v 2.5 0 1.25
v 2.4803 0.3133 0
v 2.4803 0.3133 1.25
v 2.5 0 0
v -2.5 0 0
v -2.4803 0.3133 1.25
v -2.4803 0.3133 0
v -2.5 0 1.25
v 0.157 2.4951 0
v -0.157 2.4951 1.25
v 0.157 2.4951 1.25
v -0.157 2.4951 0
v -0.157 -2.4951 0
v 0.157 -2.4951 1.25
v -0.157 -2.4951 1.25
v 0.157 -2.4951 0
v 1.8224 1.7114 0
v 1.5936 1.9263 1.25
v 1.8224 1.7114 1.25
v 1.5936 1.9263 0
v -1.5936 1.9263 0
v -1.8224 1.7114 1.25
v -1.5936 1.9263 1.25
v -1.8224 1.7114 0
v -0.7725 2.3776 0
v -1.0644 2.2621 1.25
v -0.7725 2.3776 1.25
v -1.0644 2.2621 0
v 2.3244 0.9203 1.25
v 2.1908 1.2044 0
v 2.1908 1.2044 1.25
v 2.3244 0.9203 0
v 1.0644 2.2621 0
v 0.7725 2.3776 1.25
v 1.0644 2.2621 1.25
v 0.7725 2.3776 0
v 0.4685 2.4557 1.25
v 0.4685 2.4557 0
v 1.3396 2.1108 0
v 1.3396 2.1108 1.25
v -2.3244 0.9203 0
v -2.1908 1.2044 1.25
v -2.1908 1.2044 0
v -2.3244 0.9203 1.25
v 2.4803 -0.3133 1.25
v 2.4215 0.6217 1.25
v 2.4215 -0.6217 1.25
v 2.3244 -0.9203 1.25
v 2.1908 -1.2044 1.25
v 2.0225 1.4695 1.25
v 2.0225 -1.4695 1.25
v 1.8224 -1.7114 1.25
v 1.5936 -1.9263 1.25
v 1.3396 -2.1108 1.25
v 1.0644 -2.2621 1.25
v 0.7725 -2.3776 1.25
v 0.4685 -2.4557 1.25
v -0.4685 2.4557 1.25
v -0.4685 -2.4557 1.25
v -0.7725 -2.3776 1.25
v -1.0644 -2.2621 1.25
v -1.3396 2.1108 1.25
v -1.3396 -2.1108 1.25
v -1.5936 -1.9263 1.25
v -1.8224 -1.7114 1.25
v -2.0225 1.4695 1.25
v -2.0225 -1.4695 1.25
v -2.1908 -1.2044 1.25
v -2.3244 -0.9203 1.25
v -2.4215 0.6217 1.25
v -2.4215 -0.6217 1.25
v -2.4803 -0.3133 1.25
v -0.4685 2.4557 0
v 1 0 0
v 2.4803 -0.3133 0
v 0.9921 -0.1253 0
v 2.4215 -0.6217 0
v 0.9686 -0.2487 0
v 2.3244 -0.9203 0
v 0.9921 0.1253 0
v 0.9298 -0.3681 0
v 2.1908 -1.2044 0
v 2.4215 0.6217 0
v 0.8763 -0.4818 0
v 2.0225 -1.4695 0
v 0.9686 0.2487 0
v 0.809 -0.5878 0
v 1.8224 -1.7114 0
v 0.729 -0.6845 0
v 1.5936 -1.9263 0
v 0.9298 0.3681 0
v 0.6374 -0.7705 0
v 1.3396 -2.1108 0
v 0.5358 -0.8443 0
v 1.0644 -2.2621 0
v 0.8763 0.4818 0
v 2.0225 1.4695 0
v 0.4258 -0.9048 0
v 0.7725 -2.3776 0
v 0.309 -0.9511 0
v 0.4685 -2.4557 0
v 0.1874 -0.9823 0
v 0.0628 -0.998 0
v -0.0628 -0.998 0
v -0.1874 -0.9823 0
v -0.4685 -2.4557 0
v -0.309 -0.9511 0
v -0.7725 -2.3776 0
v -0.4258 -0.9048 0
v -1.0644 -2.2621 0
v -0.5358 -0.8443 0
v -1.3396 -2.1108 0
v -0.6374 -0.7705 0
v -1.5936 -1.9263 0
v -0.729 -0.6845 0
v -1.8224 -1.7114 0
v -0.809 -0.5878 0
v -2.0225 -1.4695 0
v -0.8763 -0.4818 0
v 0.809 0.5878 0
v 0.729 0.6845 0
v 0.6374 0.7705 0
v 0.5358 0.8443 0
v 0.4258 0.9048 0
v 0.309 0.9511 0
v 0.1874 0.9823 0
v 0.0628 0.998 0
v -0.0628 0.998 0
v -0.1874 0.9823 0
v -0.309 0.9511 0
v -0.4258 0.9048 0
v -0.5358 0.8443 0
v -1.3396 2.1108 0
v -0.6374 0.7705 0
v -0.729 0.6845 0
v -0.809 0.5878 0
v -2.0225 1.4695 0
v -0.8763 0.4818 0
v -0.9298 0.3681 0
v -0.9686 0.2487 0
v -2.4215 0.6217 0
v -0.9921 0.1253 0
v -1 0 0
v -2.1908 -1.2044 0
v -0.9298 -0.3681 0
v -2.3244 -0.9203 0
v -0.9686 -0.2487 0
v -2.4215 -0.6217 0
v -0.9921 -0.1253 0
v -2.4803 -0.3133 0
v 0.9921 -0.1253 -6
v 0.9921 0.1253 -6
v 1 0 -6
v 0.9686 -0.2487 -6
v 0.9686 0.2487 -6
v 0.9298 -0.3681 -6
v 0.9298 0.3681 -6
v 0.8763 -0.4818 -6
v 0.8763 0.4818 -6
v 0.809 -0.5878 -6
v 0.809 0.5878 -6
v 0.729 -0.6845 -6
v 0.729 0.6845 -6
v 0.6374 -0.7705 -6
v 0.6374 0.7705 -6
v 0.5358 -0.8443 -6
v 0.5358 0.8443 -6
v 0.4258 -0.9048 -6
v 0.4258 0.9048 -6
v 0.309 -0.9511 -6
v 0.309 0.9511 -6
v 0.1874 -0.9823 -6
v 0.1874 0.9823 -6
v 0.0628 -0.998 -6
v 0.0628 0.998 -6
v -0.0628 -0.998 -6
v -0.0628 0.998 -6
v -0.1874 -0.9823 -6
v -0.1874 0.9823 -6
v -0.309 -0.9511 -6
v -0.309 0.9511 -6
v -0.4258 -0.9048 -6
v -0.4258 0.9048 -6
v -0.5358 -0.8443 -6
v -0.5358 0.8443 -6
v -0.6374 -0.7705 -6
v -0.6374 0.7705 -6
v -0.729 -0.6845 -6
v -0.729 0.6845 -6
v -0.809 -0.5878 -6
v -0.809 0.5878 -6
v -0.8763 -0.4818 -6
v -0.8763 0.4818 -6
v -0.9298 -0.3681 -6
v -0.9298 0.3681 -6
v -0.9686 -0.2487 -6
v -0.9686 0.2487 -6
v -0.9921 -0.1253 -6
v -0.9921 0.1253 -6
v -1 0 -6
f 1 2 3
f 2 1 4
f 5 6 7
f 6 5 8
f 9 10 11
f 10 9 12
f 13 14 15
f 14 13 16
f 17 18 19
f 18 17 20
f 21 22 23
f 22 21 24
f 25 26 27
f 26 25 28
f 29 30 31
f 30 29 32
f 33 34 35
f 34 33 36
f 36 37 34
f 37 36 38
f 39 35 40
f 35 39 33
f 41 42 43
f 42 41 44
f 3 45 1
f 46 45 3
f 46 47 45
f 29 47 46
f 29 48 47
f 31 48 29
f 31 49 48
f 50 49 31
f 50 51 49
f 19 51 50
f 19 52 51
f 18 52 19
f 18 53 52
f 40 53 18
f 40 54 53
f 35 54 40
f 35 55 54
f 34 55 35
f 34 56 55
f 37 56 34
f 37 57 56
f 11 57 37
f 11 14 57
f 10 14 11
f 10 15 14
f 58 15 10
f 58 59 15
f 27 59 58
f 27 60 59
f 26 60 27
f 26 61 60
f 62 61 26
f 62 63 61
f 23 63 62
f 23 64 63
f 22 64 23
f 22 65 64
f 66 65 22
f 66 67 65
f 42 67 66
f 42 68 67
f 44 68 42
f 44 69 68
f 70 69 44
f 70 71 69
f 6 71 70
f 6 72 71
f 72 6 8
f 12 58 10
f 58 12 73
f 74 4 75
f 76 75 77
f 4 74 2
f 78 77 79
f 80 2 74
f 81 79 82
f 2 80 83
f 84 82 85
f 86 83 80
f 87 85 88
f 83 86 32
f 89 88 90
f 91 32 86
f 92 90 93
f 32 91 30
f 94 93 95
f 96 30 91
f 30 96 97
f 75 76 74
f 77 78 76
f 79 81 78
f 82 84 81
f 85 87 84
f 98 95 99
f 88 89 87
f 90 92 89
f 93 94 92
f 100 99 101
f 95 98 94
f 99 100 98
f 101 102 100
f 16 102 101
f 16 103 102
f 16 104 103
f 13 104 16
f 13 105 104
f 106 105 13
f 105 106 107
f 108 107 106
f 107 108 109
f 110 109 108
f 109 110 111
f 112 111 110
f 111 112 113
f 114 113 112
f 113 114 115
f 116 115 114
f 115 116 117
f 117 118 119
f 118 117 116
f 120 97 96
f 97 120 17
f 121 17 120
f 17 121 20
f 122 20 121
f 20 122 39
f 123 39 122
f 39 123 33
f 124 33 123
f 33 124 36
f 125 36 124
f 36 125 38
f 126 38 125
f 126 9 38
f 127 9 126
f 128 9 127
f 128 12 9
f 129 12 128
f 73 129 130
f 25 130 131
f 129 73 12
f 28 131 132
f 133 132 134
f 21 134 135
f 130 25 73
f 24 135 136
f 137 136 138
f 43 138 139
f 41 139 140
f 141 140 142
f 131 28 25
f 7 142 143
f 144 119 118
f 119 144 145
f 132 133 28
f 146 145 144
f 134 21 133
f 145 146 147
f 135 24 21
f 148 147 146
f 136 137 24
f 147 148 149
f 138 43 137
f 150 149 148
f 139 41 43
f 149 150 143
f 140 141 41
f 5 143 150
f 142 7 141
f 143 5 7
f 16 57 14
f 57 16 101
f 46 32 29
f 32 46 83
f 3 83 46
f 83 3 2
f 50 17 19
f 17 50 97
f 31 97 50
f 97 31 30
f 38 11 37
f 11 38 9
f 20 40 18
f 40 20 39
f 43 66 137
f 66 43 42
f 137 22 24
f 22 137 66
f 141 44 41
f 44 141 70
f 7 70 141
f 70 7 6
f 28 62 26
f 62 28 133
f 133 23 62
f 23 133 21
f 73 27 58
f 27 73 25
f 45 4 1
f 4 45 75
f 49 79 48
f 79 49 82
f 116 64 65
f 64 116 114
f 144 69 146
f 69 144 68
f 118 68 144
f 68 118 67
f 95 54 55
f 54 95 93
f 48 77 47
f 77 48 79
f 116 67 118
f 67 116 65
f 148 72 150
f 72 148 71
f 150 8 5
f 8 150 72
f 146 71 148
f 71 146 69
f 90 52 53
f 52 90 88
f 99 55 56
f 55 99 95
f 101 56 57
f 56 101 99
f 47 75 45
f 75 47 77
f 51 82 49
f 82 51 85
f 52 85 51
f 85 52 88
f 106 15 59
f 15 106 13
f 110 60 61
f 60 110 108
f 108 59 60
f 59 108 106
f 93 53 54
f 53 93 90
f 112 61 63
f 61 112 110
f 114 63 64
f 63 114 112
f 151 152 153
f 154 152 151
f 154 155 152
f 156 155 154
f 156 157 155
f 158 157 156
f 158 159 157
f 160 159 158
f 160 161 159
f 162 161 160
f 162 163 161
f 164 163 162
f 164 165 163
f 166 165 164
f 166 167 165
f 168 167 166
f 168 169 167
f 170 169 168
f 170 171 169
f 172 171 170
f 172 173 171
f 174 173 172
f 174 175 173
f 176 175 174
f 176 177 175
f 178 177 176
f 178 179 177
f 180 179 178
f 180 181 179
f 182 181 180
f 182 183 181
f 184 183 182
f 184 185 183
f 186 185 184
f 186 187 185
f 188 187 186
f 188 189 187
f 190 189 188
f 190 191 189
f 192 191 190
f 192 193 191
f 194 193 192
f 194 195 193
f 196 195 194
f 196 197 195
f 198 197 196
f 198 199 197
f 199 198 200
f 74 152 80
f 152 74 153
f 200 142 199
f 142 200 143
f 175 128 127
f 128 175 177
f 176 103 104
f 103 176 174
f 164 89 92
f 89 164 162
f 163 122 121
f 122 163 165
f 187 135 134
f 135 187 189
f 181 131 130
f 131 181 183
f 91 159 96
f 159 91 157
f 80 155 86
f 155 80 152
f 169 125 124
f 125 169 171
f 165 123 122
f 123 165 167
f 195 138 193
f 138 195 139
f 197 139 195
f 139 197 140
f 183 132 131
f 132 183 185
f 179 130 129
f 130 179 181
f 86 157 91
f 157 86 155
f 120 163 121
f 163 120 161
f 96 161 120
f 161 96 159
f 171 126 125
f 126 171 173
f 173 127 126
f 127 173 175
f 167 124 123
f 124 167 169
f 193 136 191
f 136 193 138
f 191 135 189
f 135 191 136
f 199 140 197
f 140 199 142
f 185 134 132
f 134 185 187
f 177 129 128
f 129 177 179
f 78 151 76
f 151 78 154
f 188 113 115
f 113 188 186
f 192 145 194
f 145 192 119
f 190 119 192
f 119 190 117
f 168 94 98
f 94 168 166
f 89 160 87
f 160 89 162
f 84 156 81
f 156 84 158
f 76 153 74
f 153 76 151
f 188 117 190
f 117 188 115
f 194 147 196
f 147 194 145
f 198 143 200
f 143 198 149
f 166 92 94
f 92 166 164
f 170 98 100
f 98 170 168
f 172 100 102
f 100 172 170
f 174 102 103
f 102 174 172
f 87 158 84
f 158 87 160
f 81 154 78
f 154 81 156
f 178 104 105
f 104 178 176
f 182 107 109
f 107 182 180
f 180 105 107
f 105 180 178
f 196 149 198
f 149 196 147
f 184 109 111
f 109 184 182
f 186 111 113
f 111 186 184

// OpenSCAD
$fn = 50;


difference() {
	union() {
		translate(v = [0, 0, 0]) {
			rotate(a = [0, 0, 0]) {
				difference() {
					union() {
						cylinder(h = 1.2500000000, r = 2.5000000000);
						translate(v = [0, 0, -6.0000000000]) {
							cylinder(h = 6, r = 0.7500000000);
						}
						translate(v = [0, 0, -6.0000000000]) {
							cylinder(h = 6, r = 1.0000000000);
						}
						translate(v = [0, 0, -6.0000000000]) {
							cylinder(h = 6, r = 0.7500000000);
						}
					}
					union();
				}
			}
		}
	}
	union();
}
